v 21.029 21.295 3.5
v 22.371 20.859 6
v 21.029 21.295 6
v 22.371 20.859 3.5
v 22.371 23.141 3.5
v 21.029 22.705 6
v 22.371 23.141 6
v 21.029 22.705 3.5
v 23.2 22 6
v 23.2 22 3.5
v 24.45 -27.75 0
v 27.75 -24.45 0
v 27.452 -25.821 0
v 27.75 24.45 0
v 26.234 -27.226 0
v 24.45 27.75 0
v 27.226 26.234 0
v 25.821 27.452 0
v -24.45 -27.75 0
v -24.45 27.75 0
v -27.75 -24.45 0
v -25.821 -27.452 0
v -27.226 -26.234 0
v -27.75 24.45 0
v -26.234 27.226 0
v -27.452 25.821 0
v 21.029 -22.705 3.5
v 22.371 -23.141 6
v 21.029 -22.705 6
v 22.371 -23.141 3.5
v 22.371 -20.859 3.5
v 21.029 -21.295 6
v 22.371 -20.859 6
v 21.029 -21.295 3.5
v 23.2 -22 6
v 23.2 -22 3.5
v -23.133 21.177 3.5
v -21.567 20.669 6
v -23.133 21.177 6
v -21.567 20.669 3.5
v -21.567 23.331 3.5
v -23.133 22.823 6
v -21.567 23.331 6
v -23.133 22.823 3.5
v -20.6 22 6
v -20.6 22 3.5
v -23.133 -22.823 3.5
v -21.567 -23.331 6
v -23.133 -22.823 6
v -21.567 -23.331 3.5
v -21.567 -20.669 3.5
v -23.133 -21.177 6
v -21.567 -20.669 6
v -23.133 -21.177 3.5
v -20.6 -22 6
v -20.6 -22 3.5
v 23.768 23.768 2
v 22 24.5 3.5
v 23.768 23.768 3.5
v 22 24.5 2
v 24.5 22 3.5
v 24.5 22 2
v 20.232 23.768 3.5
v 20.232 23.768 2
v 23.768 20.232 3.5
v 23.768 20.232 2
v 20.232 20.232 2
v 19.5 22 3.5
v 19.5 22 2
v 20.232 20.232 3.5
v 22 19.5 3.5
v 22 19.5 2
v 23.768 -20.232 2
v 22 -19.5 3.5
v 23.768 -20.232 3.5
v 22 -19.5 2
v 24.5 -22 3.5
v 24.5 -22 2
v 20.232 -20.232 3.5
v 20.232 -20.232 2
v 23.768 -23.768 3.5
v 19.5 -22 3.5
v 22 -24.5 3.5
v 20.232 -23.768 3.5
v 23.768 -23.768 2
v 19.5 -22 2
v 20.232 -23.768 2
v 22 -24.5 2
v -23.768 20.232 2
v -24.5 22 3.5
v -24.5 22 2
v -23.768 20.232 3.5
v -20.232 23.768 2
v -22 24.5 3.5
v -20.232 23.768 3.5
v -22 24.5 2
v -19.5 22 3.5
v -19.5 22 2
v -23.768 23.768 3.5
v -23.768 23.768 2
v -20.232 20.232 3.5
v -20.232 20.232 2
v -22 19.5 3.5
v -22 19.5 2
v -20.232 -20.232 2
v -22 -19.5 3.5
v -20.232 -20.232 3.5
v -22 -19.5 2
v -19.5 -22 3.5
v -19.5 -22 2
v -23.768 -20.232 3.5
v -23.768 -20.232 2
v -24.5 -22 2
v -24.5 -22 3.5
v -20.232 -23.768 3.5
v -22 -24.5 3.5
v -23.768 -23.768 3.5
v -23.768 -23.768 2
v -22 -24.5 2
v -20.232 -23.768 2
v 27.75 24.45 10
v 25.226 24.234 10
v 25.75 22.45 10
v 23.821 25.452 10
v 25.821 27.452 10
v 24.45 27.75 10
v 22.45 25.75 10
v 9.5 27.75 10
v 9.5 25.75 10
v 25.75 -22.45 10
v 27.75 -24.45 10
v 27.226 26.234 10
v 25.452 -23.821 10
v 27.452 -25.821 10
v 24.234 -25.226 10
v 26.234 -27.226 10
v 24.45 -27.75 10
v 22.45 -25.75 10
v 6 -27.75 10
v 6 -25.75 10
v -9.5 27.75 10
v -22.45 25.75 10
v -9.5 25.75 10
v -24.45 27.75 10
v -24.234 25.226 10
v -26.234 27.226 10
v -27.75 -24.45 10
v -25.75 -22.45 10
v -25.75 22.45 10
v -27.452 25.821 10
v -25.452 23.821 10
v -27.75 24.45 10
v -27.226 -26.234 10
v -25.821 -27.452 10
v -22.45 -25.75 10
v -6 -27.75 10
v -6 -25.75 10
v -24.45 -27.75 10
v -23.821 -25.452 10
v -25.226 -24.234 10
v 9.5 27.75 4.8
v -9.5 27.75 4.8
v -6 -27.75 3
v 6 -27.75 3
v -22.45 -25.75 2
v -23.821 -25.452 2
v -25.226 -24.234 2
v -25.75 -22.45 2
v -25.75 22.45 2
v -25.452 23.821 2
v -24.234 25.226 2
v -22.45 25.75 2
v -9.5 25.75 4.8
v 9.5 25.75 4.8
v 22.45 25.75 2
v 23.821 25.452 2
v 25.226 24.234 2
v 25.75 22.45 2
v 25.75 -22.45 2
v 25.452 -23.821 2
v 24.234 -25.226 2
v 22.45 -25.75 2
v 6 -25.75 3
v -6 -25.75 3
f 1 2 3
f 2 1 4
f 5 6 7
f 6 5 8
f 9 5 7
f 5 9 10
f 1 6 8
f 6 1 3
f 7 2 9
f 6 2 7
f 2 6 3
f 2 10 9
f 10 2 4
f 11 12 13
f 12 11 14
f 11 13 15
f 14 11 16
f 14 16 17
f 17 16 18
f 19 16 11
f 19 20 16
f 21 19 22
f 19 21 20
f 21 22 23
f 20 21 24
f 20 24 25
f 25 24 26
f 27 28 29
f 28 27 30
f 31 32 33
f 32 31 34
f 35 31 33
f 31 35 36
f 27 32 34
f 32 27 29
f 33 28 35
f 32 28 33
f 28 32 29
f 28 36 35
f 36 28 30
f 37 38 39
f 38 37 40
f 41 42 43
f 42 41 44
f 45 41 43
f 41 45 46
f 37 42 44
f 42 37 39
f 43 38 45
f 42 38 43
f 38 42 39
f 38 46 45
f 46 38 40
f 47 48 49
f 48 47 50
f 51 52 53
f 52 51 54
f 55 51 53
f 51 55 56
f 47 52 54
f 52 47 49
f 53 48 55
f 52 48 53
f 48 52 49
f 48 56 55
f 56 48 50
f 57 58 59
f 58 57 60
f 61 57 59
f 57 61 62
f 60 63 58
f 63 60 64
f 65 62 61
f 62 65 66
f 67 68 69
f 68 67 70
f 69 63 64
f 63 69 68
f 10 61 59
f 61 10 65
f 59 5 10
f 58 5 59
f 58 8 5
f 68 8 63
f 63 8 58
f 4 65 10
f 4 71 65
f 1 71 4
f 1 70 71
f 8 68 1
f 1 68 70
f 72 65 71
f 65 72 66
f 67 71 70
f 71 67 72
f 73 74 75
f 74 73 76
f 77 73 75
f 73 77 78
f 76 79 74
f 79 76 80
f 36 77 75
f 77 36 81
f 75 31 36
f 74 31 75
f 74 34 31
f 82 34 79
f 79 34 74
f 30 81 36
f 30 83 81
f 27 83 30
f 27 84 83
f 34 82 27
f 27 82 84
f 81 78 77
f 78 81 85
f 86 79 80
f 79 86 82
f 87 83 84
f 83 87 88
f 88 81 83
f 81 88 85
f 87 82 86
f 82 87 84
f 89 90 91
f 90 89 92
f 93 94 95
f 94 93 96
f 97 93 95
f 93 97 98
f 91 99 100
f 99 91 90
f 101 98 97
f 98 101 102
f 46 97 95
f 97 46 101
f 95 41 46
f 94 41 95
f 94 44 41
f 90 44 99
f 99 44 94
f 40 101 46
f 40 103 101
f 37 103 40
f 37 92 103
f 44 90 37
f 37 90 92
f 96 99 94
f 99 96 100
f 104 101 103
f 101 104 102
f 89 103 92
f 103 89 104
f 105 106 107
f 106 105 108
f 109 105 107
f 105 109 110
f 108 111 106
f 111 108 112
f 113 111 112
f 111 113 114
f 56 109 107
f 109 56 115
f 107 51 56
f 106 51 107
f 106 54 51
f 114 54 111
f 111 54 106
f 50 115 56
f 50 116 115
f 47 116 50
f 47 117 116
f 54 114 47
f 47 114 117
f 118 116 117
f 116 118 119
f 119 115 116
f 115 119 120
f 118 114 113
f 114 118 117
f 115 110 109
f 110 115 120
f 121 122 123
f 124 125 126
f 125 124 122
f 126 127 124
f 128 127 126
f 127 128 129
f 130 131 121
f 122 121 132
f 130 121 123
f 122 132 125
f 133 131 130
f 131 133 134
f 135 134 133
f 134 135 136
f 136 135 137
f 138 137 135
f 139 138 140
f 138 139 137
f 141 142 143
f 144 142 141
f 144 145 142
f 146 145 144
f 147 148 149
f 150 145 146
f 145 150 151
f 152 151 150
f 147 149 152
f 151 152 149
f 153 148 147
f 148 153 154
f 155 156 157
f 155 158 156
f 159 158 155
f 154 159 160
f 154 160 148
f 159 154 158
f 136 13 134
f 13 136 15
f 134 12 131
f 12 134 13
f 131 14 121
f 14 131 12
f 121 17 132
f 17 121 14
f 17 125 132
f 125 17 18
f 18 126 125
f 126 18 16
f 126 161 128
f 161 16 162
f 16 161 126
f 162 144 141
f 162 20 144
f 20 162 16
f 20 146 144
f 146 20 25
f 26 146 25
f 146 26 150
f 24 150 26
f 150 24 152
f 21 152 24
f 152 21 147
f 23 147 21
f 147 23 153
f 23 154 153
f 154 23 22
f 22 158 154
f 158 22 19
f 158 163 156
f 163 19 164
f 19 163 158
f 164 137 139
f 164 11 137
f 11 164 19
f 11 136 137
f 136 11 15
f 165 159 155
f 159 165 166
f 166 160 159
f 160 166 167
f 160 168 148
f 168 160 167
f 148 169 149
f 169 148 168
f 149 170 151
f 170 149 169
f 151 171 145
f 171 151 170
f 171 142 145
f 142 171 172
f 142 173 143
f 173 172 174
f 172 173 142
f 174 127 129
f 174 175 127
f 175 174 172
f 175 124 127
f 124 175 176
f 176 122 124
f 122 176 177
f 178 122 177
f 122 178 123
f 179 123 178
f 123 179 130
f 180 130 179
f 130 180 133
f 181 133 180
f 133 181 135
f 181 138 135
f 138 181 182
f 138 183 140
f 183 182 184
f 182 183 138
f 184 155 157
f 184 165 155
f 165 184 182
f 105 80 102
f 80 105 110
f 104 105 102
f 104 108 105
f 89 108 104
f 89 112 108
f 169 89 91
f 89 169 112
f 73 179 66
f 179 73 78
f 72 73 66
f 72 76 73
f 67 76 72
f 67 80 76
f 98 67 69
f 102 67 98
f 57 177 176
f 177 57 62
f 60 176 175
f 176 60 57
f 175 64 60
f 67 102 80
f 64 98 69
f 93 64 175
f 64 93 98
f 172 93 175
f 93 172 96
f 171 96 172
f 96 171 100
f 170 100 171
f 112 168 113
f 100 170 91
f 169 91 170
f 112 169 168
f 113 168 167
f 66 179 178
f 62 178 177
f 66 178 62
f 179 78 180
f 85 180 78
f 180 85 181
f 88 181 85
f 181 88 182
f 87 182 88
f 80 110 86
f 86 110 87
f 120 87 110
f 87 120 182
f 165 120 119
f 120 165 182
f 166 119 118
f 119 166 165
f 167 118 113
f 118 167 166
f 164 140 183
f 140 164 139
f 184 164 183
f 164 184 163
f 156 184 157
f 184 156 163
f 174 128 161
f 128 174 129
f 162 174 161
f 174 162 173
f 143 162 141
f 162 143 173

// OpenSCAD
CORNER_RADIUS=3.3;
BOX_W = 50.2;
BOX_L = 50.2;
BOX_H = 10;
WALL_THICKNESS = 2;




//四周
module rander(){
    //cube(15,center=true);
    linear_extrude( BOX_H )
    difference(){
        offset(r=CORNER_RADIUS)
            square( [BOX_W-(CORNER_RADIUS-WALL_THICKNESS), BOX_L-(CORNER_RADIUS-WALL_THICKNESS)] ,center=true );
        offset( r= CORNER_RADIUS )
            square( [BOX_W-WALL_THICKNESS-CORNER_RADIUS, BOX_L-WALL_THICKNESS-CORNER_RADIUS] ,center=true);
    }
}


//4个安装孔

r_header=1.4;         //稍微小于m3的直径
r_height=6;          //底座高度+板厚:(2+1.4+1.6)
screw_offset = 22;      //螺丝孔的偏移量
dock_r=2.5;         //底座的半径,应该大于M3螺丝的半径(1.5mm)
dock_height=3.5;    //底座的高度=底板厚度+排针底部可能的高度(2+1.4)

module screw() {
    //螺丝孔
    translate([screw_offset,screw_offset,0])
    {
        cylinder(h=r_height,r=r_header-0.2);
    }
    translate([screw_offset,-screw_offset,0])
    {
        cylinder(h=r_height,r=r_header-0.2);
    }
    translate([-screw_offset,screw_offset,0])
    {
        cylinder(h=r_height,r=r_header);
    }
    translate([-screw_offset,-screw_offset,0])
    {
        cylinder(h=r_height,r=r_header);
    }
    //底座
    translate([screw_offset,screw_offset,0])
    {
        cylinder(h=dock_height,r=dock_r);
    }
    translate([screw_offset,-screw_offset,0])
    {
        cylinder(h=dock_height,r=dock_r);
    }
    translate([-screw_offset,screw_offset,0])
    {
        cylinder(h=dock_height,r=dock_r);
    }
    translate([-screw_offset,-screw_offset,0])
    {
        cylinder(h=dock_height,r=dock_r);
    }
}

module Base5CM(){
    union(){
        difference(){
        
            
        }
     rander();
        /*
     coordinates = [ [0,0],[0,BOX_L],[BOX_W,BOX_L],[BOX_W,0] ];
     translate ( [-BOX_W/2, -BOX_L/2] )
     hull()
     for (i = coordinates)
        translate(i) sphere(CORNER_RADIUS);
     */
        
        //底板
        linear_extrude( WALL_THICKNESS )
        offset(r=CORNER_RADIUS)
        square( [BOX_W-2, BOX_L-2] ,center=true );
        //固定孔
        screw();
       //translate([0,0,-21])
       //cube(50,center=true);
    }
}

//开孔部分
module Cut(){
    union(){
        //usb
        translate([0,-25,5+3])
        {
            cube([12,7,10],center = true);
        }
        //antenta
        translate([0,25,5+4])
        {
            cube([19,7,10-1.6],center = true);
        }
        
    }
}


module Base(){

difference(){
    Base5CM();
    Cut();
}
    

}


color("Green"){
	render(convexity=4) {
		Base();
	}
}
